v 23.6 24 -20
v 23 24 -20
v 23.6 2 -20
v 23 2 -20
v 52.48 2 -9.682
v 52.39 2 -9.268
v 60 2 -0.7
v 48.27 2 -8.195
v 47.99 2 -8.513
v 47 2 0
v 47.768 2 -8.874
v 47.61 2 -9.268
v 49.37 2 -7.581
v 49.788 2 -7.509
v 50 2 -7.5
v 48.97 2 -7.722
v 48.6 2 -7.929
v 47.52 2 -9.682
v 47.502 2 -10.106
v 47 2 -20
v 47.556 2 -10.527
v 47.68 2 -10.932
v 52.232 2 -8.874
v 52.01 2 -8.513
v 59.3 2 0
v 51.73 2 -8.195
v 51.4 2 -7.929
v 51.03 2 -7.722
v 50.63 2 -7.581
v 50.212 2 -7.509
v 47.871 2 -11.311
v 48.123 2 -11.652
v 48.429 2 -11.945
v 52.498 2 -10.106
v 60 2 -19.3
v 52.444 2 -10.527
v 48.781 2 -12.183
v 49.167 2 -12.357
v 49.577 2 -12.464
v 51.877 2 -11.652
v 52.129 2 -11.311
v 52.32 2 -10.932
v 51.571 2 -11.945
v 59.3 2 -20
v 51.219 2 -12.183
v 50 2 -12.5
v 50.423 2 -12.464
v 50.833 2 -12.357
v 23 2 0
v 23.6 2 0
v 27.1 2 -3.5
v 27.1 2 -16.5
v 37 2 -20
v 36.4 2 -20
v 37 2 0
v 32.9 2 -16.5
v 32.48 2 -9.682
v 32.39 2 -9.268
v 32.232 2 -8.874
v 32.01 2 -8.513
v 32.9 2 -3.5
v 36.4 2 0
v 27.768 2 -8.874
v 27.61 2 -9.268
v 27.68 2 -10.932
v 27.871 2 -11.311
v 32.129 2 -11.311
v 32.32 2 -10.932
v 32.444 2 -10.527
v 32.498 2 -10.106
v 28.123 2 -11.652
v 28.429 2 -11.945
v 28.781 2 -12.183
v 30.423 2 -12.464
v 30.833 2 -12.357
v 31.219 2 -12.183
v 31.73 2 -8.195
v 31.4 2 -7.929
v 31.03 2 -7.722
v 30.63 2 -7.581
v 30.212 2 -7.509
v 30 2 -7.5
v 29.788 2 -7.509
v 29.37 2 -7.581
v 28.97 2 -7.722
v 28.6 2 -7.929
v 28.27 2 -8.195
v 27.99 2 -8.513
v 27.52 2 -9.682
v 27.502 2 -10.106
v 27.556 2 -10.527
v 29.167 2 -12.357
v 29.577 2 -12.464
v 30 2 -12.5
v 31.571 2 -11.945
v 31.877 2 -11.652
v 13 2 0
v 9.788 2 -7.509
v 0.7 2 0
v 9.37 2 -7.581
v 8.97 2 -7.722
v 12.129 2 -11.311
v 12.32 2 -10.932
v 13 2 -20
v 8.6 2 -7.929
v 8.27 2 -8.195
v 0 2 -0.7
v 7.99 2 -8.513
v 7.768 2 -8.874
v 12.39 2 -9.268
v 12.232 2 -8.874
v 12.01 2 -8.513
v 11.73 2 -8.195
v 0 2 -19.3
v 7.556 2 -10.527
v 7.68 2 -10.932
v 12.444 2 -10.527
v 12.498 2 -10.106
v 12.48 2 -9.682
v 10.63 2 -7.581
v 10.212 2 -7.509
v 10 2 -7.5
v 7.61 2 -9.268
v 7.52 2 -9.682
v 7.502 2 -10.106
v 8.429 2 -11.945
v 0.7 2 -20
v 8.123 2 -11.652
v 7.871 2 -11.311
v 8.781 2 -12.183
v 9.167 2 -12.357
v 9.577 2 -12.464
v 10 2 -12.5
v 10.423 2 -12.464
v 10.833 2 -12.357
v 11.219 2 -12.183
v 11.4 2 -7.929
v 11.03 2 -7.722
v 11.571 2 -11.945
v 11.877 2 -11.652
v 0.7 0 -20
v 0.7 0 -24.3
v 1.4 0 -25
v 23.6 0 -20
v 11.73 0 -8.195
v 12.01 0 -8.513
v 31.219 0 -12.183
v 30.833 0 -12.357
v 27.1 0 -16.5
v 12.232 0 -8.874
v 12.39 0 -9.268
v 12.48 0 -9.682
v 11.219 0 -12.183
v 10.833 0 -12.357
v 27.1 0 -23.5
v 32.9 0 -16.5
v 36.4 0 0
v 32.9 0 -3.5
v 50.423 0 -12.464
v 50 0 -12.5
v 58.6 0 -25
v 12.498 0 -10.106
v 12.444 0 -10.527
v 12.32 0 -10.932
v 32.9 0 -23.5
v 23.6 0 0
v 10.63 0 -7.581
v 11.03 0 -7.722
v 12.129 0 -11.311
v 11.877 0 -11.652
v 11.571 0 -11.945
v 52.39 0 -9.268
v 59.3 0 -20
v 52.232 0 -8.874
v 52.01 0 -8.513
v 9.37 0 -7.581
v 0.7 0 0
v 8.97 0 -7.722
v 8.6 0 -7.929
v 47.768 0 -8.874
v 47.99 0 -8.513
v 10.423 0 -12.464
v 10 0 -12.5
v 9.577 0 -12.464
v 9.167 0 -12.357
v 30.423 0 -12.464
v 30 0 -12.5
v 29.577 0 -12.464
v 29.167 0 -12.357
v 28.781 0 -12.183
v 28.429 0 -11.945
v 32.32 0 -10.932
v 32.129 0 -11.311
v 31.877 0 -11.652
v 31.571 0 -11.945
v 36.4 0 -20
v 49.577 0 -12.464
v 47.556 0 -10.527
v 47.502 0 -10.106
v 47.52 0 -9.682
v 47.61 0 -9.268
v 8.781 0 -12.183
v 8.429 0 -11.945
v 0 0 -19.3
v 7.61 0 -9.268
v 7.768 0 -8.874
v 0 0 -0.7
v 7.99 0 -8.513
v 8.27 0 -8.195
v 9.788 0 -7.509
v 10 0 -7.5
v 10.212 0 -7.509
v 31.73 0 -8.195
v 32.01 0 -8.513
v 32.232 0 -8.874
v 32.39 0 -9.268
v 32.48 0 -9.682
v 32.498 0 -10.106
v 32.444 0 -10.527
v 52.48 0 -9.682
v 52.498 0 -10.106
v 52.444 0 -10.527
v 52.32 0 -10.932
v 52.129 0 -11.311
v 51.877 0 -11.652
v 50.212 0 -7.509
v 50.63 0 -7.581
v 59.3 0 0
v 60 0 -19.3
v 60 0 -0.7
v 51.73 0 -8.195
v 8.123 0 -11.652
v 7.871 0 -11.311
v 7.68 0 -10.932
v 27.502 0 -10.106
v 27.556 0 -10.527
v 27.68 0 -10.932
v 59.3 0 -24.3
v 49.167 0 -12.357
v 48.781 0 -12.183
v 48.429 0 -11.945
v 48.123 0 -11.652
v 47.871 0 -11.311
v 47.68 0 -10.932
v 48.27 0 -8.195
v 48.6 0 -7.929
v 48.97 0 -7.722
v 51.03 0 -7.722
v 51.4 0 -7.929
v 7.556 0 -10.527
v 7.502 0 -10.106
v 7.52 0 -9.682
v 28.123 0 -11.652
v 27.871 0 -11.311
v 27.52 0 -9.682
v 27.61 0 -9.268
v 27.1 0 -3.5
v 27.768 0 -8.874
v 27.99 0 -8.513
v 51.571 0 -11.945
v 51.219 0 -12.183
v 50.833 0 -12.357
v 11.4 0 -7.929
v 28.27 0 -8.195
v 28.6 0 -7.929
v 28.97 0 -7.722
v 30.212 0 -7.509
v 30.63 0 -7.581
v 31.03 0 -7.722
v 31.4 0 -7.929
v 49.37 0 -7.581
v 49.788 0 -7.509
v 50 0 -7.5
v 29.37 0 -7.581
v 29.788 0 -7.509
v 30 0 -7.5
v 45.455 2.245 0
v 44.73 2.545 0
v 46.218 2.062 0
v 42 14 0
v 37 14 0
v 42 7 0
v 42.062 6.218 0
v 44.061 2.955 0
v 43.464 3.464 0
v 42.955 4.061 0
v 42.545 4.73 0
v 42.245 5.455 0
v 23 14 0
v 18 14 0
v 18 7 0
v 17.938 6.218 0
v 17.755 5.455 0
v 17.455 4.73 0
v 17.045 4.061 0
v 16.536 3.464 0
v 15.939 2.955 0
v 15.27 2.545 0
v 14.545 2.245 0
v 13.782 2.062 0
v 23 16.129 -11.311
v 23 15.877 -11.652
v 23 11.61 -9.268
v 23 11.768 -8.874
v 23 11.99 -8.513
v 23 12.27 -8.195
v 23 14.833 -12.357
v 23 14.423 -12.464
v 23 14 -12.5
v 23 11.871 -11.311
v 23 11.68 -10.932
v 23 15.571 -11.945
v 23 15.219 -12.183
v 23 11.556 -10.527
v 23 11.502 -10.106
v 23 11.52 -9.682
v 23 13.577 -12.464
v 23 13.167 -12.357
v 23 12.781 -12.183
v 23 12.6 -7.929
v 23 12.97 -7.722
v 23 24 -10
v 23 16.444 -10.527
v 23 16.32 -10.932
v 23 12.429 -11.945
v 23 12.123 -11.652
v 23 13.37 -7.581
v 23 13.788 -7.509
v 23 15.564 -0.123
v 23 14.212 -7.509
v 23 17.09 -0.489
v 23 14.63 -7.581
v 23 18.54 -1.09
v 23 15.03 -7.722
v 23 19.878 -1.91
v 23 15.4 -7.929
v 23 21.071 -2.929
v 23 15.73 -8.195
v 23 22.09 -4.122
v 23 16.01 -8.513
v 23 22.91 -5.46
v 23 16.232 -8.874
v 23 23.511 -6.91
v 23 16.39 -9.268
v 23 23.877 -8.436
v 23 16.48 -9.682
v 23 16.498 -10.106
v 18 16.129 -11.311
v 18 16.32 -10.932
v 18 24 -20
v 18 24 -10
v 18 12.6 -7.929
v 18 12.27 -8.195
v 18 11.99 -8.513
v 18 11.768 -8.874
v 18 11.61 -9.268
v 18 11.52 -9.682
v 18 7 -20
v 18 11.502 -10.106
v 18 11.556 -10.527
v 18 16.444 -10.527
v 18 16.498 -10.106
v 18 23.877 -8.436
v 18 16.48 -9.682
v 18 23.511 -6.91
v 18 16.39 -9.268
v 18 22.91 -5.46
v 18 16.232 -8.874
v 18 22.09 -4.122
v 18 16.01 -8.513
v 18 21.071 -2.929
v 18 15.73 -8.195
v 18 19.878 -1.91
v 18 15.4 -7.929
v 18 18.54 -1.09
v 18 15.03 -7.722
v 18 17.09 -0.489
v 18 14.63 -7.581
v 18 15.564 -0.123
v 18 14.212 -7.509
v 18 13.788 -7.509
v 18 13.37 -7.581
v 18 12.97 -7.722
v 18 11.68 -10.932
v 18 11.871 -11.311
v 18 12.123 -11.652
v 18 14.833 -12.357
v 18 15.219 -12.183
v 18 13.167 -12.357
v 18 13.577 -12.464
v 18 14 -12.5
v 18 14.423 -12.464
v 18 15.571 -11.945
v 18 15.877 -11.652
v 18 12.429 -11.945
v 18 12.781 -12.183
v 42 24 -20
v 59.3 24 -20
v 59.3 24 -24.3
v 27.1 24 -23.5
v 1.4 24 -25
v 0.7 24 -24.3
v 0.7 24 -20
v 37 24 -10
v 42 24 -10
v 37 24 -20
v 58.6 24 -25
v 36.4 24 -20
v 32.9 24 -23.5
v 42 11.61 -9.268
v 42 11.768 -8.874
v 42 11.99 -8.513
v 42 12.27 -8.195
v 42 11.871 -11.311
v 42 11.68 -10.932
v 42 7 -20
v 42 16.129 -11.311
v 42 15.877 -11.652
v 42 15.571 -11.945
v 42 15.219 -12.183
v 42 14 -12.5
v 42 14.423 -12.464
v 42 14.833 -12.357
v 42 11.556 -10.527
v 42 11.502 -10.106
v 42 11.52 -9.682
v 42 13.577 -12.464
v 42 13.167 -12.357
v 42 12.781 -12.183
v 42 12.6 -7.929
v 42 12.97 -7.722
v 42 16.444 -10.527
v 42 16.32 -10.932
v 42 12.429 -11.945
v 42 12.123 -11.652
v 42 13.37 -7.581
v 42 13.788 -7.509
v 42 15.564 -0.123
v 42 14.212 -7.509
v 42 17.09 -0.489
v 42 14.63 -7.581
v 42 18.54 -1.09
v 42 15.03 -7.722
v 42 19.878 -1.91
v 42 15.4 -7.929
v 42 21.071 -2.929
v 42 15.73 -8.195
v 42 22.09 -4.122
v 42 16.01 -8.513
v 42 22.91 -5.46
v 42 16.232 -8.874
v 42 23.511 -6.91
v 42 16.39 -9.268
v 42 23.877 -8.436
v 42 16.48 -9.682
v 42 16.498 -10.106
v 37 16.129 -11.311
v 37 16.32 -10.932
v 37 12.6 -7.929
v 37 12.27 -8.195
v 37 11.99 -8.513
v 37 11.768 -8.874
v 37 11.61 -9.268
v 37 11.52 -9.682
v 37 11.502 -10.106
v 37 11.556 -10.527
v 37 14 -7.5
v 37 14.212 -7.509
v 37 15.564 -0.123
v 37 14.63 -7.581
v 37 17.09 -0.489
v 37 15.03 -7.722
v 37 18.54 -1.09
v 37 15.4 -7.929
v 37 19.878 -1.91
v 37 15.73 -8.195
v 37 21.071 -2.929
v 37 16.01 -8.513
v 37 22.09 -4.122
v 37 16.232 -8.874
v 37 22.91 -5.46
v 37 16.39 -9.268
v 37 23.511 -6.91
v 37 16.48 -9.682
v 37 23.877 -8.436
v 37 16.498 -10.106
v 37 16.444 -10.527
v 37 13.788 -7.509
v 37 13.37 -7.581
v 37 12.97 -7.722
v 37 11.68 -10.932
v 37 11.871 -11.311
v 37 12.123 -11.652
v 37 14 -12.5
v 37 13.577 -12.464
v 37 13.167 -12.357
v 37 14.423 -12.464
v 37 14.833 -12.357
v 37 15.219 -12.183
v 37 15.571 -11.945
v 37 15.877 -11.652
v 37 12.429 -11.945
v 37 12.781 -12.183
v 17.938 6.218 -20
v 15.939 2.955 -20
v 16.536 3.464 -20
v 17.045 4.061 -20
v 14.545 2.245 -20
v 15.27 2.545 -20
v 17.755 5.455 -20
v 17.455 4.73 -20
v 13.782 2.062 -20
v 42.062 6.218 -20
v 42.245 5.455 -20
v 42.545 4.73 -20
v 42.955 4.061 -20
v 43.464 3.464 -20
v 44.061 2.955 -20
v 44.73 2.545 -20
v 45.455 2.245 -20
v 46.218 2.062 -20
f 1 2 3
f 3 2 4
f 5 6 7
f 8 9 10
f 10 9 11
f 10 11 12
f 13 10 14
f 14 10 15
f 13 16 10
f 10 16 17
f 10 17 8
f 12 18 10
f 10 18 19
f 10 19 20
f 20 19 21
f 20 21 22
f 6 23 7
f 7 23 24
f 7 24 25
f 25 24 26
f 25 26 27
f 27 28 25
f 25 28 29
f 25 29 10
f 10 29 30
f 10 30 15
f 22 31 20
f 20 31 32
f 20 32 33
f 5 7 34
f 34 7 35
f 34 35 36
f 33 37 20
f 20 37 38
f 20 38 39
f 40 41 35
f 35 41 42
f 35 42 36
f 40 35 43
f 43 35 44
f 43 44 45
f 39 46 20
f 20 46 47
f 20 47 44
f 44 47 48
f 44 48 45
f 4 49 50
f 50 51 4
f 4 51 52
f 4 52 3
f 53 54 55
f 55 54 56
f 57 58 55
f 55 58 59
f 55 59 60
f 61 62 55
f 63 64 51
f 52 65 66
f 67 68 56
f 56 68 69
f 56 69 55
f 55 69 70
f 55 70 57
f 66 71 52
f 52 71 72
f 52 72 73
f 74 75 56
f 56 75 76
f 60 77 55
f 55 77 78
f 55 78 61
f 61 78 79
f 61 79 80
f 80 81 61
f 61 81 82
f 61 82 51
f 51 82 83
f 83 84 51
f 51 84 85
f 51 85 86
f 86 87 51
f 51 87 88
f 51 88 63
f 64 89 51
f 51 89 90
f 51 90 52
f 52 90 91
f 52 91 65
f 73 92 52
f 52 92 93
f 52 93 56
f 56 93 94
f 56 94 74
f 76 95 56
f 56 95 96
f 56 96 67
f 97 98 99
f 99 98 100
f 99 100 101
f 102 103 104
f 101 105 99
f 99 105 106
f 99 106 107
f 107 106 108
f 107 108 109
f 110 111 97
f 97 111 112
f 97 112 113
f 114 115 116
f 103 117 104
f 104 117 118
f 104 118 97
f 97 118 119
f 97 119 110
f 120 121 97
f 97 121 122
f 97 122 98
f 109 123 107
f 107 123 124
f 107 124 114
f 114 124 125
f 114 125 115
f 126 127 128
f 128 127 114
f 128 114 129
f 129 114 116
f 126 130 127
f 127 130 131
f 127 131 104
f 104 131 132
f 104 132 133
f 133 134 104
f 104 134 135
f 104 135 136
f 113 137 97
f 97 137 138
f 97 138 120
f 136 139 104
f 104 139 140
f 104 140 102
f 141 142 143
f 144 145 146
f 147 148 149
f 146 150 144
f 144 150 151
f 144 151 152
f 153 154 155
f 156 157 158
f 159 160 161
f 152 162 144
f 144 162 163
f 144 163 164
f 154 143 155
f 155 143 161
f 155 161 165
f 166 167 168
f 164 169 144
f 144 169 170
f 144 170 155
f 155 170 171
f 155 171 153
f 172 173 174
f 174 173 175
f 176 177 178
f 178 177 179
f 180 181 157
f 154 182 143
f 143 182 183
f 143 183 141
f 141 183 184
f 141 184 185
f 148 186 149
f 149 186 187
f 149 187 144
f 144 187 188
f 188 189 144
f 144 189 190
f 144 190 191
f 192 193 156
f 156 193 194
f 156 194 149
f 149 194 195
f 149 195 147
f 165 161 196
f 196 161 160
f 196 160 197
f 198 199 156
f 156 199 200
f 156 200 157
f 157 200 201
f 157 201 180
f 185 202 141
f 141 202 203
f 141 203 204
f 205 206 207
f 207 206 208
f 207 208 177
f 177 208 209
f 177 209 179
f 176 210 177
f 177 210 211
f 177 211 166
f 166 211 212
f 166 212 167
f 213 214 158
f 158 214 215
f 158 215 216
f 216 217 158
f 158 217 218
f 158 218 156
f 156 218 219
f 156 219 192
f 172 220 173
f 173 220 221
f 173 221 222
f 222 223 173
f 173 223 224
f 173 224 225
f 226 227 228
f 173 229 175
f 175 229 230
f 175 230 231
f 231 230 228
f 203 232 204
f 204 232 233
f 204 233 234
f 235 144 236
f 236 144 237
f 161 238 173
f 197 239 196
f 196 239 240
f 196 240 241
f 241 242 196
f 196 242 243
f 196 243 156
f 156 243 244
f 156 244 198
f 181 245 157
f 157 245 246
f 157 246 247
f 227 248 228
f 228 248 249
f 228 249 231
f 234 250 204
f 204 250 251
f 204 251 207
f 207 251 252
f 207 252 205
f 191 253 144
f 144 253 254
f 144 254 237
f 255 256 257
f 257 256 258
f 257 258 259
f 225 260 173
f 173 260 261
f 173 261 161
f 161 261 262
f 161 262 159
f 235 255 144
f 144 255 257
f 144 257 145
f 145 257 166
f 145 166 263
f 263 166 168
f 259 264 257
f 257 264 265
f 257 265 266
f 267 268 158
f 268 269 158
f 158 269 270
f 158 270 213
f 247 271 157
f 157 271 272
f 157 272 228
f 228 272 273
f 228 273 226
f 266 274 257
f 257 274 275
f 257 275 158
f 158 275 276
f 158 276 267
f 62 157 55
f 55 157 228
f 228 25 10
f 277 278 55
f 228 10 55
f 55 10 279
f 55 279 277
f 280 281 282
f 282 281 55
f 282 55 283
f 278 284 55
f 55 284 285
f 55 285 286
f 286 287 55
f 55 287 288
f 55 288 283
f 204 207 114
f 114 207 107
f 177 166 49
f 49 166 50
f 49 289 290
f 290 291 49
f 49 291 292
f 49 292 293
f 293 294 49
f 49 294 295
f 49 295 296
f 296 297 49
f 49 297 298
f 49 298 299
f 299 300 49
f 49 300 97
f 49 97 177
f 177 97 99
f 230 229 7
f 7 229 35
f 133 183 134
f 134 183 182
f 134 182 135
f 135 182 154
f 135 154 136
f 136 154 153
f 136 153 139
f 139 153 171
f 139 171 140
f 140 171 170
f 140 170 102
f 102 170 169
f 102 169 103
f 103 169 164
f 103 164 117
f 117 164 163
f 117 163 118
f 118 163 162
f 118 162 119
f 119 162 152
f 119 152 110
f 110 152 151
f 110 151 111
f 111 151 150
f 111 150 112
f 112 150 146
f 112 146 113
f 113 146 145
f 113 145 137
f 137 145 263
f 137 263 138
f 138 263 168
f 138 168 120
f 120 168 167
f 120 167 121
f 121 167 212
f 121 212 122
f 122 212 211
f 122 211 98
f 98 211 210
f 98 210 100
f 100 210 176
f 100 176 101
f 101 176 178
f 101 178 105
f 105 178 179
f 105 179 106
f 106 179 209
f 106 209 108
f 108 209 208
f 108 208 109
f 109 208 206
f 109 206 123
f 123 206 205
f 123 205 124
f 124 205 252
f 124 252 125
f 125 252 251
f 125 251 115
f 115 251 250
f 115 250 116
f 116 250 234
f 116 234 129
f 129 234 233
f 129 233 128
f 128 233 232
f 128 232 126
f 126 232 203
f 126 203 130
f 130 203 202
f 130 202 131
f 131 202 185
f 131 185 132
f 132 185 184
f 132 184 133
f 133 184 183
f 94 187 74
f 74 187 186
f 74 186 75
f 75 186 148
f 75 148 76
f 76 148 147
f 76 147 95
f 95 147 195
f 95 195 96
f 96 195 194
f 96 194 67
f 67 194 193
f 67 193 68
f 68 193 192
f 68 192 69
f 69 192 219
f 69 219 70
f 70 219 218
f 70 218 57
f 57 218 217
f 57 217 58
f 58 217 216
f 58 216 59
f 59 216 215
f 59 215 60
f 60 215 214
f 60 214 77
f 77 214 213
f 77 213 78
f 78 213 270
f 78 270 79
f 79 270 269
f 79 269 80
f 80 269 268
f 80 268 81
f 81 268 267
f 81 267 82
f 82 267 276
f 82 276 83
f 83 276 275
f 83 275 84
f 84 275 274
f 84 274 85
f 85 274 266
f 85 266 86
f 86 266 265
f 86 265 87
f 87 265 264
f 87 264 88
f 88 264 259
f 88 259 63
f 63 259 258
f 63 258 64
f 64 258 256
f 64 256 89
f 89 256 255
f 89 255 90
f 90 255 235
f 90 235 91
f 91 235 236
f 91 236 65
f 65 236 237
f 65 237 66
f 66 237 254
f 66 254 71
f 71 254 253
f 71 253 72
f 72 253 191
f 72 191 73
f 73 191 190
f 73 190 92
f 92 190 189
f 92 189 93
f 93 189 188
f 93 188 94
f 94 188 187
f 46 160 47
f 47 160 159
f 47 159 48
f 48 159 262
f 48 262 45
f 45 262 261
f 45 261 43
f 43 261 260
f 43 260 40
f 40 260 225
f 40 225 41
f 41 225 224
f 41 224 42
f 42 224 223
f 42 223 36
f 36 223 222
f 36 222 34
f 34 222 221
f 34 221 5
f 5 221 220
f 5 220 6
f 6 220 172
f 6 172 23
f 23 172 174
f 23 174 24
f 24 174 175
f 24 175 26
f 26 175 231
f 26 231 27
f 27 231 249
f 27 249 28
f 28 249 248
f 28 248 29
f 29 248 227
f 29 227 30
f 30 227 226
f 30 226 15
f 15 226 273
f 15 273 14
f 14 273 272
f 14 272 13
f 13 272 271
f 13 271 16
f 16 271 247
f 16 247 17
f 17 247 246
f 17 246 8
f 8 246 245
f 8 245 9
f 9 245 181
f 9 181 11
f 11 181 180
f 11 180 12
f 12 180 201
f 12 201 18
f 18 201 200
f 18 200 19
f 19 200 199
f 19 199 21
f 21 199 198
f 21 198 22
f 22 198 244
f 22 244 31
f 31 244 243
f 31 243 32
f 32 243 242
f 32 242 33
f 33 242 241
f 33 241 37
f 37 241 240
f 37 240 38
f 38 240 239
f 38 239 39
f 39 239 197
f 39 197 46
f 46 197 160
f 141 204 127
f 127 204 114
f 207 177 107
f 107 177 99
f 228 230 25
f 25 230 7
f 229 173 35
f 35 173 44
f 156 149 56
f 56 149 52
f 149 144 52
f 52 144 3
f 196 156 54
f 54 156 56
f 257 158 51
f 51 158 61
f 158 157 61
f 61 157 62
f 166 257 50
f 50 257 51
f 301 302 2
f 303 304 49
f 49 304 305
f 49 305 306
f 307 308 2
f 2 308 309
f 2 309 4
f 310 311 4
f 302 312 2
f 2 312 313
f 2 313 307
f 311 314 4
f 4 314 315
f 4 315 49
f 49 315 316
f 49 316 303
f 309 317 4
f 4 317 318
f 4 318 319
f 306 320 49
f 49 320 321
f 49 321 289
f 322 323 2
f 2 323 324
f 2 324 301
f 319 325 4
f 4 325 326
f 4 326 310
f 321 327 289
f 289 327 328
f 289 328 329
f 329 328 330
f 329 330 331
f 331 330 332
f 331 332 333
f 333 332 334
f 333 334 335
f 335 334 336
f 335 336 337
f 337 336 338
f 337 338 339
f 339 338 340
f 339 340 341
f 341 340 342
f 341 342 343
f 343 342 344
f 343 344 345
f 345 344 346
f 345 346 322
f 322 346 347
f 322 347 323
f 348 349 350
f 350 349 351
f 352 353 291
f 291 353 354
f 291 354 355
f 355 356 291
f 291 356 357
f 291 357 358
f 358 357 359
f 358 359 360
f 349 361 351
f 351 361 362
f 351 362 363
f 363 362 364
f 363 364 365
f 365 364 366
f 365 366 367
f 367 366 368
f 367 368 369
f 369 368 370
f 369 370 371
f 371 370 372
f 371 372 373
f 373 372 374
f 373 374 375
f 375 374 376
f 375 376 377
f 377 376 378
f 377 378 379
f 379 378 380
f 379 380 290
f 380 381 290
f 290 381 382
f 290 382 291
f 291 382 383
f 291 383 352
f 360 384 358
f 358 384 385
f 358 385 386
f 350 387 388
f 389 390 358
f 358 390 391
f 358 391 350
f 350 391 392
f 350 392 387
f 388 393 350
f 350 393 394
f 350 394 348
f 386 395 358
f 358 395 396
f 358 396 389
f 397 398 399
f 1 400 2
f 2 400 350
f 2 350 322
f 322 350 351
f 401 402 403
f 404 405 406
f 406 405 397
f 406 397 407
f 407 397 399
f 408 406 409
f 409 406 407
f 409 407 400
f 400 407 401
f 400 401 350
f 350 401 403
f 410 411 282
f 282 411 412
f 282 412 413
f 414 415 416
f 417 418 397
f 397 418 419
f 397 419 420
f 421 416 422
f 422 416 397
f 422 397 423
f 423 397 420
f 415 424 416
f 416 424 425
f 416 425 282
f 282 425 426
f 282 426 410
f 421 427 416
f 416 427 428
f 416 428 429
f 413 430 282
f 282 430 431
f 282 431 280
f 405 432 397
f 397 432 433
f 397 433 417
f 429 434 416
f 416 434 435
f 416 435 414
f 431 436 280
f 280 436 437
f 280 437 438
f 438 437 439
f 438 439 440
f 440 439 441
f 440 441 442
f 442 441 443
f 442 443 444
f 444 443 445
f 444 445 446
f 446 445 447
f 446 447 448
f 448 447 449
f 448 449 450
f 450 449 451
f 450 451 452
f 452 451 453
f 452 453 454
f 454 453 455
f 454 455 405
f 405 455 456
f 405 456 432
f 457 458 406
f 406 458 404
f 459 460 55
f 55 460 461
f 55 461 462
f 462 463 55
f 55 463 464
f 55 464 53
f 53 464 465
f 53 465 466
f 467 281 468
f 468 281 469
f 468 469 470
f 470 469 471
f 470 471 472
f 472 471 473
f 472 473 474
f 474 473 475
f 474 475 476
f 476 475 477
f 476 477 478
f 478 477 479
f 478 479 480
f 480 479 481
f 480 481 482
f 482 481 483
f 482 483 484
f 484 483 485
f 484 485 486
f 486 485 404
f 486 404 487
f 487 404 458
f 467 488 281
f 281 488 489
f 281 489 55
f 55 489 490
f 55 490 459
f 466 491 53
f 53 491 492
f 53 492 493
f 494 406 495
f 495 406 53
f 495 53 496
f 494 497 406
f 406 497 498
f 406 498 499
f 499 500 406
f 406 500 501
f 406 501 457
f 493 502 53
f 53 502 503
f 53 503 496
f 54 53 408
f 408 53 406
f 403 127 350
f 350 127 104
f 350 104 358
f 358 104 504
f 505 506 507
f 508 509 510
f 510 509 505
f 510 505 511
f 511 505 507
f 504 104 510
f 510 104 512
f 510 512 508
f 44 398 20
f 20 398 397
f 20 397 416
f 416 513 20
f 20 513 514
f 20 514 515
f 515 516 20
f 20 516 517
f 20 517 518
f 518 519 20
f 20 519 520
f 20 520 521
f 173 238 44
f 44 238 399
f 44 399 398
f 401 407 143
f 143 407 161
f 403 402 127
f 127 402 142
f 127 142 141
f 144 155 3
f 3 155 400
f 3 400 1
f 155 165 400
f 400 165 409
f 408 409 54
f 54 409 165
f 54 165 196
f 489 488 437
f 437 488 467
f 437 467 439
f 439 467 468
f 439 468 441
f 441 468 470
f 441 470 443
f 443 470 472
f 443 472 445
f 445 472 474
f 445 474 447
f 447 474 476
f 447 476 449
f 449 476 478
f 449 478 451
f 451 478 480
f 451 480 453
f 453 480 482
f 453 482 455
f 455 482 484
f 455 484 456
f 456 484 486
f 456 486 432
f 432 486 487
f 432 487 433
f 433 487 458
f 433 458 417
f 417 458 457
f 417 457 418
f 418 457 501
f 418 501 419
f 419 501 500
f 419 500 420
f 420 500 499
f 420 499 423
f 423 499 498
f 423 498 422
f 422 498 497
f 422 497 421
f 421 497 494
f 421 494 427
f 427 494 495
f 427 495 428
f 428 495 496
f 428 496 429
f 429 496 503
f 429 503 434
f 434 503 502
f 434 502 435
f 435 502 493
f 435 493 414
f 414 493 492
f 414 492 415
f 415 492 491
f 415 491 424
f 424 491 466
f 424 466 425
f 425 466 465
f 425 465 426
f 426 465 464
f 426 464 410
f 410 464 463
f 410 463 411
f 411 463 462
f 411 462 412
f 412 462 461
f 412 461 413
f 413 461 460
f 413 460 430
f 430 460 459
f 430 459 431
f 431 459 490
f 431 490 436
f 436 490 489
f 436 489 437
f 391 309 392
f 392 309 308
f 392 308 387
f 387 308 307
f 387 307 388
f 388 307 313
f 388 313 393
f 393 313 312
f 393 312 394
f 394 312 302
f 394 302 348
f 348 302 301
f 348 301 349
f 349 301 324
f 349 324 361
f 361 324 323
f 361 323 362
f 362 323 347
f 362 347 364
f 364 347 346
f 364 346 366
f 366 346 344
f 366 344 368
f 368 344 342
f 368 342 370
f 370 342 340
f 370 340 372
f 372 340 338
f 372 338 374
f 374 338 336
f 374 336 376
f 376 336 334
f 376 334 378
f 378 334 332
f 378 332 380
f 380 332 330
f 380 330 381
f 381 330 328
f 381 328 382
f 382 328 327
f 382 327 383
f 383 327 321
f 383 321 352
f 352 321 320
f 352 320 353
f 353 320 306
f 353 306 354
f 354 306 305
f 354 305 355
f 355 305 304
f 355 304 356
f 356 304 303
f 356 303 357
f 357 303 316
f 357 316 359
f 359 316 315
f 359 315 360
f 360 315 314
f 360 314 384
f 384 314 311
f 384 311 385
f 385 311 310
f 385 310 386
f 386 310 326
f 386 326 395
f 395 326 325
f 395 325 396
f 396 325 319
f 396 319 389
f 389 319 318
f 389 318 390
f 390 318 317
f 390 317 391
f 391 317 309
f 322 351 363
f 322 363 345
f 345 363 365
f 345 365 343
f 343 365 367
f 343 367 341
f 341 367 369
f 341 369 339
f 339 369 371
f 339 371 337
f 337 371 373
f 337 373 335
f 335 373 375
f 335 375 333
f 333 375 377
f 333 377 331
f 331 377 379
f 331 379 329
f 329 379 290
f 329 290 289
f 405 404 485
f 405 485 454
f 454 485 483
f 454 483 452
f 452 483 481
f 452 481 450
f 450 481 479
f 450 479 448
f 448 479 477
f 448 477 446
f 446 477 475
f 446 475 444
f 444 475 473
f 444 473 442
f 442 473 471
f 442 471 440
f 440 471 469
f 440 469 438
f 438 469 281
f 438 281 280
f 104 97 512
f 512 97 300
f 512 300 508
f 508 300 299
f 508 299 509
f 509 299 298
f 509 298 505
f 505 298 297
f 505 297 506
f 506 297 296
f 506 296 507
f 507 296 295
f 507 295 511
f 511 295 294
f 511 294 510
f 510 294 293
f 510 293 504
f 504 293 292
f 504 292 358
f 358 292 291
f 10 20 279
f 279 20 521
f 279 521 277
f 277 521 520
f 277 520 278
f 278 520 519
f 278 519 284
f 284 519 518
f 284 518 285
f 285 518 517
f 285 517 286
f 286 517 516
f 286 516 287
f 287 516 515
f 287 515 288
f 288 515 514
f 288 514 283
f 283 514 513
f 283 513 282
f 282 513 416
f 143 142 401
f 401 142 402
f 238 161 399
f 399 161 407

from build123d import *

# Parameters (mm, degrees)
SKETCH1_W           = 60
SKETCH1_H           = 20
SKETCH1_R           = 2.5
BOSS_EXTRUDE1_DEPTH = 2
FILLET1_SIZE        = 0.7
CUT_EXTRUDE2_DEPTH  = 2
BOSS_EXTRUDE3_DEPTH = 22
BOSS_EXTRUDE4_DEPTH = 24
CUT_EXTRUDE3_DEPTH  = 24
SKETCH6_R           = 2.5
CUT_EXTRUDE4_DEPTH  = 55.45181356
FILLET2_R           = 10
FILLET4_R           = 5
CHAMFER1_SIZE       = 0.7


with BuildPart() as part:
    # Sketch1 → Boss-Extrude1 (new body)
    with BuildSketch(Plane(origin=(0, 0, 0), x_dir=(1, 0, 0), z_dir=(0, 1, 0))):
        with Locations((30, 10)):
            Rectangle(SKETCH1_W, SKETCH1_H)
        with Locations(Location((10, 10, 0), (0, 0, 270))):
            Circle(SKETCH1_R, mode=Mode.SUBTRACT)
        with Locations(Location((30, 10, 0), (0, 0, 270))):
            Circle(SKETCH1_R, mode=Mode.SUBTRACT)
        with Locations(Location((50, 10, 0), (0, 0, 270))):
            Circle(SKETCH1_R, mode=Mode.SUBTRACT)
    extrude(amount=BOSS_EXTRUDE1_DEPTH)

    # Fillet1
    fillet1_edges = [part.edges().sort_by_distance(p)[0] for p in [
        (0, 1, -20),
        (60, 1, -20),
        (60, 1, 0),
        (0, 1, 0),
    ]]
    chamfer(fillet1_edges, length=FILLET1_SIZE)

    # Sketch2 → Cut-Extrude2 (cut)
    with BuildSketch(Plane(origin=(0, 2, 0), x_dir=(1, 0, 0), z_dir=(0, 1, 0))):
        Polygon((30, 20), (30, 16.5), (32.9, 16.5), (36.4, 20), (32.9, 20), align=None)
        Polygon((27.1, 16.5), (30, 16.5), (30, 20), (27.1, 20), (23.6, 20), align=None)
        Polygon((30, 0), (30, 3.5), (27.1, 3.5), (23.6, 0), (27.1, 0), align=None)
        Polygon((32.9, 3.5), (30, 3.5), (30, 0), (32.9, 0), (36.4, 0), align=None)
    extrude(amount=-CUT_EXTRUDE2_DEPTH, mode=Mode.SUBTRACT)

    # Sketch3 → Boss-Extrude3 (add)
    with BuildSketch(Plane(origin=(0, 2, 0), x_dir=(1, 0, 0), z_dir=(0, 1, 0))):
        Polygon((23, 0), (23, 10), (23, 20), (18, 20), (18, 0), align=None)
        Polygon((37, 20), (37, 10), (37, 0), (42, 0), (42, 20), align=None)
    extrude(amount=BOSS_EXTRUDE3_DEPTH)

    # Sketch4 → Boss-Extrude4 (add)
    with BuildSketch(Plane(origin=(0, 0, 0), x_dir=(1, 0, 0), z_dir=(0, 1, 0))):
        Polygon((0.7, 20), (0.7, 25), (59.3, 25), (59.3, 20), (23.6, 20), align=None)
    extrude(amount=BOSS_EXTRUDE4_DEPTH)

    # Sketch5 → Cut-Extrude3 (cut)
    with BuildSketch(Plane(origin=(0, 24, 0), x_dir=(1, 0, 0), z_dir=(0, 1, 0))):
        Polygon((23.6, 20), (27.100178567, 23.500178567), (32.900178567, 23.500178567), (36.4, 20), align=None)
    extrude(amount=-CUT_EXTRUDE3_DEPTH, mode=Mode.SUBTRACT)

    # Sketch6 → Cut-Extrude4 (cut, through all)
    with BuildSketch(Plane(origin=(42, 0, 0), x_dir=(0, 0, -1), z_dir=(1, 0, 0))):
        with Locations((10, 14)):
            Circle(SKETCH6_R)
    extrude(amount=-CUT_EXTRUDE4_DEPTH, mode=Mode.SUBTRACT)

    # Fillet2
    fillet2_edges = [part.edges().sort_by_distance(p)[0] for p in [
        (20.5, 24, 0),
        (39.5, 24, 0),
    ]]
    fillet(fillet2_edges, radius=FILLET2_R)

    # Fillet4
    fillet4_edges = [part.edges().sort_by_distance(p)[0] for p in [
        (18, 2, -10),
        (42, 2, -10),
    ]]
    fillet(fillet4_edges, radius=FILLET4_R)

    # Chamfer1
    chamfer1_edges = [part.edges().sort_by_distance(p)[0] for p in [
        (59.3, 12, -25),
        (0.7, 12, -25),
    ]]
    chamfer(chamfer1_edges, length=CHAMFER1_SIZE)


solid = part.part
